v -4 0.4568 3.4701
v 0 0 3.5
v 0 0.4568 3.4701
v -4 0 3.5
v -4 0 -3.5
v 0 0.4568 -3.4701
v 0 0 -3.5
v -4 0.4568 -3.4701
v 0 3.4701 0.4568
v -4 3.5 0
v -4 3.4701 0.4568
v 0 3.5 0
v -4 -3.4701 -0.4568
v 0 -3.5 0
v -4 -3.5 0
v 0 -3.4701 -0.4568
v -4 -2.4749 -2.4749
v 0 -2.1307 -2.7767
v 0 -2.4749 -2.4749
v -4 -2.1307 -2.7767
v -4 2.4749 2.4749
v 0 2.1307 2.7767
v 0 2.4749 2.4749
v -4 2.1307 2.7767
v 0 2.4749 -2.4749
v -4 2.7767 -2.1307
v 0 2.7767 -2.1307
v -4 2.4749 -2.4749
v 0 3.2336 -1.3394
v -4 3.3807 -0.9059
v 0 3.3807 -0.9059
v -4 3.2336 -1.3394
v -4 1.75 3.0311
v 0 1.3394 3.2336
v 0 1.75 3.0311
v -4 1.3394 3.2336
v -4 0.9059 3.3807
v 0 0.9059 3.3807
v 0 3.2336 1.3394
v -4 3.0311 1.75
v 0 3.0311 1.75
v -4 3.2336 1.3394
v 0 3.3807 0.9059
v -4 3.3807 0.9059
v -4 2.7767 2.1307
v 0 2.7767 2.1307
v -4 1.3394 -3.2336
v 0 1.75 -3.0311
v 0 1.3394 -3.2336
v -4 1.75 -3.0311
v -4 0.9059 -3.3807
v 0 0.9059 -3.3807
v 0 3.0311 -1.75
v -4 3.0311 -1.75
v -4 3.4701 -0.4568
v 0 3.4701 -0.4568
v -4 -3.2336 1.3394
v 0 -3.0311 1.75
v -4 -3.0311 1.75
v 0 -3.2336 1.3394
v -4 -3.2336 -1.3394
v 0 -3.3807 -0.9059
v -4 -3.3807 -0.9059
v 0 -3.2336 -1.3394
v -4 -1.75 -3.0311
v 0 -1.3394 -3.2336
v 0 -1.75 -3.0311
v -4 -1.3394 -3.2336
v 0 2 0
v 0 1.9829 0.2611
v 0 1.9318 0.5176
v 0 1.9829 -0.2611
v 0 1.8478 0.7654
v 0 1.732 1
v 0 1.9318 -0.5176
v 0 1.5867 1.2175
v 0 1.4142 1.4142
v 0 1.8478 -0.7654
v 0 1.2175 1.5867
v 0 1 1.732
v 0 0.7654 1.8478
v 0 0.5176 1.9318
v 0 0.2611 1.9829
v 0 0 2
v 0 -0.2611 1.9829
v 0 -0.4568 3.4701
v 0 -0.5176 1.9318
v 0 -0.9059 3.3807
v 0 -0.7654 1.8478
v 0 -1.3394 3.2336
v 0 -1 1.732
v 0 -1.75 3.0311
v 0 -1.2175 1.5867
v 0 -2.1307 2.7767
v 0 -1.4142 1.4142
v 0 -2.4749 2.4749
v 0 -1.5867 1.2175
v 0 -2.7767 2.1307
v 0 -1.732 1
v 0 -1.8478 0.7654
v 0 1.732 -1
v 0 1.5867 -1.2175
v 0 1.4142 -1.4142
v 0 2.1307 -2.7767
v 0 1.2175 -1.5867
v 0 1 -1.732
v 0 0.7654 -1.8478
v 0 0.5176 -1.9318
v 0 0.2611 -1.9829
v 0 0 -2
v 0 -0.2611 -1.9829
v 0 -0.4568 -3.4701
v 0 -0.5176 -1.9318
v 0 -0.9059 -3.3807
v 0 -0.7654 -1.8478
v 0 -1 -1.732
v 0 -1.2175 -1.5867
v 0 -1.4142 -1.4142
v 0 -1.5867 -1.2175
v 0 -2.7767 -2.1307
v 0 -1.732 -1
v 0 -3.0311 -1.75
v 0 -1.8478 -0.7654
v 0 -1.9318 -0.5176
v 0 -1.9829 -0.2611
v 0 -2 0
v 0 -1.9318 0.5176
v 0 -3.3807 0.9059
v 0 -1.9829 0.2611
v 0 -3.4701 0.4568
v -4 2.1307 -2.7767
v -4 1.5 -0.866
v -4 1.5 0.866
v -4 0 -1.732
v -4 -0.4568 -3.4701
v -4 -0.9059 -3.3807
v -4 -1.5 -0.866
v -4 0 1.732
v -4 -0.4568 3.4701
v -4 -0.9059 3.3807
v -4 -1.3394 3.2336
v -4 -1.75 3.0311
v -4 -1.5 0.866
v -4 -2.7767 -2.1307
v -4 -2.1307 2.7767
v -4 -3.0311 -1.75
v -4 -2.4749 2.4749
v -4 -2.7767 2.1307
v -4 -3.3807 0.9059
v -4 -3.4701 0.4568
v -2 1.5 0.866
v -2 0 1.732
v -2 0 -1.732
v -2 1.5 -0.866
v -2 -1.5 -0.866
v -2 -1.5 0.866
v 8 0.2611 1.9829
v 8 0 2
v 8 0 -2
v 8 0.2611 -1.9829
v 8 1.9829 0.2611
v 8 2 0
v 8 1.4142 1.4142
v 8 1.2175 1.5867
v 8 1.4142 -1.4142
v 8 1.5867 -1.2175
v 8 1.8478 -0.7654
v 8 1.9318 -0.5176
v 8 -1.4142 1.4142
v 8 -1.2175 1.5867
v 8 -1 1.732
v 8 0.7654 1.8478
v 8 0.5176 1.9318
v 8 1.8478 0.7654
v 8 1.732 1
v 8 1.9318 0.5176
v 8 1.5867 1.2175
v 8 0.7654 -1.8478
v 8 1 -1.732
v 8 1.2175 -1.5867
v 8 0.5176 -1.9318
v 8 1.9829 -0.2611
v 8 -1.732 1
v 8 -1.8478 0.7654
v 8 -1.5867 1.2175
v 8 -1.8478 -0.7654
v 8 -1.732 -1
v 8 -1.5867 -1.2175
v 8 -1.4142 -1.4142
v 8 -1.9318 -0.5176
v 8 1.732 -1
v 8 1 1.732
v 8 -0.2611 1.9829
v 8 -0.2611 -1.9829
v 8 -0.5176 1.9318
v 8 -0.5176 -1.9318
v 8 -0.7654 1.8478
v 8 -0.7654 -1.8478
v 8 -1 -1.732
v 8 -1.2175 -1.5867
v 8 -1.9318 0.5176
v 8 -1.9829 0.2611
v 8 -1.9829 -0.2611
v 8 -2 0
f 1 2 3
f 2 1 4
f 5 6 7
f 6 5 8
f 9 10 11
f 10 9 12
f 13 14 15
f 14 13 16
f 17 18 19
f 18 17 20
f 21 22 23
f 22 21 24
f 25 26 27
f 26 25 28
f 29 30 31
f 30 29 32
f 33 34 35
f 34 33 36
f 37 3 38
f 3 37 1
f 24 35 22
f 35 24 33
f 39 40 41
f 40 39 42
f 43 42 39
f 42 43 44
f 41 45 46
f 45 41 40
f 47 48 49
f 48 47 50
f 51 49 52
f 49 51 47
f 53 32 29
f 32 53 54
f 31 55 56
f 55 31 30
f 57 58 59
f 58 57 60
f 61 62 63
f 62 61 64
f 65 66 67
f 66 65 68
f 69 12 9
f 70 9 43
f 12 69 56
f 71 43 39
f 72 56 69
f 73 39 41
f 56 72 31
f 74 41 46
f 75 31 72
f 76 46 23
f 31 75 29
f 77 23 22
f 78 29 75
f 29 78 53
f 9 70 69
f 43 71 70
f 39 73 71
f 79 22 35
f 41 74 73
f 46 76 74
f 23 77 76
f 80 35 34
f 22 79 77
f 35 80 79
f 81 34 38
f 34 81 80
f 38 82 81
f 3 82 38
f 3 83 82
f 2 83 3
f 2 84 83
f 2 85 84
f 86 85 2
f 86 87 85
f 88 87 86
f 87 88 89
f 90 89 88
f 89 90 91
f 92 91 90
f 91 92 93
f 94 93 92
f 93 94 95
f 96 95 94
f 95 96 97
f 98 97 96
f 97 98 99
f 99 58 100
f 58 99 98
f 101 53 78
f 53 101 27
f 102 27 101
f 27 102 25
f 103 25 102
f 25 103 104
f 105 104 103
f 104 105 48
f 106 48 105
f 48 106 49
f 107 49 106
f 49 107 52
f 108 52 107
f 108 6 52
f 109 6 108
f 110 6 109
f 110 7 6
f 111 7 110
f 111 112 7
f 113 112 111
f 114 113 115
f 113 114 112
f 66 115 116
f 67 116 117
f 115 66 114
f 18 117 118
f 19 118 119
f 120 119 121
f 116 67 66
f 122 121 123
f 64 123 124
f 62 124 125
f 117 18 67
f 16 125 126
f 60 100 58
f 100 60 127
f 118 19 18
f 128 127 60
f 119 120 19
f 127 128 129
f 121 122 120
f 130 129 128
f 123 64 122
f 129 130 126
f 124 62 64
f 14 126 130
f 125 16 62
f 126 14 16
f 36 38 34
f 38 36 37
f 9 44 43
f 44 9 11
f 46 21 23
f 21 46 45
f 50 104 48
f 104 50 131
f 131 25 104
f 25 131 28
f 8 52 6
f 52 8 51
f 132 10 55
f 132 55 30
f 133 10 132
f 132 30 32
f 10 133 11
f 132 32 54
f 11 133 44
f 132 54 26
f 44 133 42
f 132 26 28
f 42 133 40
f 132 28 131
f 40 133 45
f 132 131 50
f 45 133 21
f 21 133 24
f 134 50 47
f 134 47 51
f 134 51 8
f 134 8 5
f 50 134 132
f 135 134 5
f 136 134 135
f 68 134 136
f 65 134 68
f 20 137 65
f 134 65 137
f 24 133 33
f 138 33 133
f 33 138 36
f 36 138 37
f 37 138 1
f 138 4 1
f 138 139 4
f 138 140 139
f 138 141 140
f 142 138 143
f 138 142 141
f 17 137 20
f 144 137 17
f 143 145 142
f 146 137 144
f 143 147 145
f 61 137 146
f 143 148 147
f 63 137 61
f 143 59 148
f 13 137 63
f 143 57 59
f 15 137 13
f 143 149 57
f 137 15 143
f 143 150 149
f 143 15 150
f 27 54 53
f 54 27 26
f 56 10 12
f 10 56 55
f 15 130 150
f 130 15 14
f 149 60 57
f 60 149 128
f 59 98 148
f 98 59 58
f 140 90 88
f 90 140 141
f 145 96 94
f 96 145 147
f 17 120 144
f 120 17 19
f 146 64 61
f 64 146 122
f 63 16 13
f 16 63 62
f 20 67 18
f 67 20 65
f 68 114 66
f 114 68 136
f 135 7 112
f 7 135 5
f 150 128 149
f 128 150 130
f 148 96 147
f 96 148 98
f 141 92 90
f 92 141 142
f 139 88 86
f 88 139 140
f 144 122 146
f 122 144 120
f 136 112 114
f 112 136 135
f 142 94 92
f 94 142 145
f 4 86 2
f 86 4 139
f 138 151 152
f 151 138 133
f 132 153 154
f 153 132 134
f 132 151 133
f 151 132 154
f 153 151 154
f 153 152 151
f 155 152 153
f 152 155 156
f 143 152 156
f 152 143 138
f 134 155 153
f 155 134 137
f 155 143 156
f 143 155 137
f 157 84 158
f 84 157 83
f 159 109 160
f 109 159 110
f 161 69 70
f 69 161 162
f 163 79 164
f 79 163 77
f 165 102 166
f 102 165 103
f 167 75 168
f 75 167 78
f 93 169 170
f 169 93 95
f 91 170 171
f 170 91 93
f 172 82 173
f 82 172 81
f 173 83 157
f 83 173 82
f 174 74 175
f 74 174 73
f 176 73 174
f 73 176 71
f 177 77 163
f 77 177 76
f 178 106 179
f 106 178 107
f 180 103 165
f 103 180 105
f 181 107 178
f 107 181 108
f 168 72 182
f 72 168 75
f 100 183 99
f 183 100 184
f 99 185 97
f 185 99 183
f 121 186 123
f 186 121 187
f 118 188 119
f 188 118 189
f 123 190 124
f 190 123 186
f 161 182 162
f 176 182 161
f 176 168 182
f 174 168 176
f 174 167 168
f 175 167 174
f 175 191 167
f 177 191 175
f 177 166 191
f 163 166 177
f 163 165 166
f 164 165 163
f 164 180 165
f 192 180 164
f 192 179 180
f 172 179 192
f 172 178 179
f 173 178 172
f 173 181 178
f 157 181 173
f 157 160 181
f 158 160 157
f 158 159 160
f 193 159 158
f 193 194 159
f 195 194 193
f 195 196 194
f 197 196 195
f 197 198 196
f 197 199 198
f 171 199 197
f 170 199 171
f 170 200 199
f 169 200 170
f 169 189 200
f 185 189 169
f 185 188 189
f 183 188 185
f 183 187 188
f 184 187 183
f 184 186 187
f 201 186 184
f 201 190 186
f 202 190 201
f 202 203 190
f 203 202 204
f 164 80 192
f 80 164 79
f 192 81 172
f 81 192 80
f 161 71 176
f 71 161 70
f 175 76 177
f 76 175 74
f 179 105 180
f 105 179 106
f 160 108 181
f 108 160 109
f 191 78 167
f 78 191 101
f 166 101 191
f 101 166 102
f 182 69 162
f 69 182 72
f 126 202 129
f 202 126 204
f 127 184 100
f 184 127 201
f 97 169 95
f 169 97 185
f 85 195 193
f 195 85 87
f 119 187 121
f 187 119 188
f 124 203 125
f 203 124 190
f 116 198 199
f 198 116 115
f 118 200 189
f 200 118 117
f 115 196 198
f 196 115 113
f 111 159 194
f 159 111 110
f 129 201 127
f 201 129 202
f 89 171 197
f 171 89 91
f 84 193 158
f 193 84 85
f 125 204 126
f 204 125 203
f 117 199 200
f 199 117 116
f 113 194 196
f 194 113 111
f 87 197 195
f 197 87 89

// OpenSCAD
// file: ../../lib/nutsnbolts/data-access.scad
// Norm Nuts and Bolts - a OpenSCAD library
// Copyright (C) 2012  Johannes Kneer

// This program is free software: you can redistribute it and/or modify
// it under the terms of the GNU General Public License as published by
// the Free Software Foundation, either version 3 of the License, or
// (at your option) any later version.

// This program is distributed in the hope that it will be useful,
// but WITHOUT ANY WARRANTY; without even the implied warranty of
// MERCHANTABILITY or FITNESS FOR A PARTICULAR PURPOSE.  See the
// GNU General Public License for more details.

// You should have received a copy of the GNU General Public License
// along with this program.  If not, see <http://www.gnu.org/licenses/>.


// DATABASE ACCESS FUNCTIONS AND CONSTANTS



// == CONSTANTS ==

// screw table access keys
_NB_S_DESC            = 0;
_NB_S_FAMKEY			    = 1;
_NB_S_LENGTH          = 2;
_NB_S_NOTHREAD_LENGTH = 3;

_NB_F_DESC			      = 0;
_NB_F_OUTER_DIA       = 1;
_NB_F_INNER_DIA       = 2;
_NB_F_LEAD            = 3;
_NB_F_KEY             = 4;
_NB_F_KEY_DEPTH       = 5;
_NB_F_HEAD_HEIGHT     = 6;
_NB_F_HEAD_DIA        = 7;
_NB_F_NUT_KEY         = 8;
_NB_F_NUT_HEIGHT      = 9;
_NB_F_PITCH_FINE      = 10;
_NB_F_PITCH_MEDIUM    = 11;
_NB_F_PITCH_COARSE    = 12;


// == FUNCTIONS ==

// _get_screw("descriptor")   with descriptor = M8x25
//   find the line for a general object in the data matrix

function _get_screw(n) = data_screw[search([n], data_screw)[0]];
function _get_screw_fam(n) = data_screw_fam[search([_get_screw(n)[_NB_S_FAMKEY]], data_screw_fam)[0]];

function _get_fam(n) = data_screw_fam[search([n], data_screw_fam)[0]];


// _get_XXXXX("descriptor") functions
// find a single property in the database

function _get_desc(n)        = _get_screw(n)[_NB_S_DESC];
function _get_famkey(n)         = _get_screw(n)[_NB_S_FAMKEY];
function _get_length(n)      = _get_screw(n)[_NB_S_LENGTH];
function _get_nt_length(n)   = _get_screw(n)[_NB_S_NOTHREAD_LENGTH];

function _get_outer_dia(n)   = _get_screw_fam(n)[_NB_F_OUTER_DIA];
function _get_inner_dia(n)   = _get_screw_fam(n)[_NB_F_INNER_DIA];
function _get_lead(n)        = _get_screw_fam(n)[_NB_F_LEAD];
function _get_head_height(n) = _get_screw_fam(n)[_NB_F_HEAD_HEIGHT];
function _get_head_dia(n)    = _get_screw_fam(n)[_NB_F_HEAD_DIA];
function _get_nut_key(n)     = _get_screw_fam(n)[_NB_F_NUT_KEY];
function _get_nut_height(n)  = _get_screw_fam(n)[_NB_F_NUT_HEIGHT];
function _get_fine_pitch(n)  = _get_screw_fam(n)[_NB_F_PITCH_FINE];
function _get_medium_pitch(n)  = _get_screw_fam(n)[_NB_F_PITCH_MEDIUM];
function _get_coarse_pitch(n)  = _get_screw_fam(n)[_NB_F_PITCH_COARSE];
// main file
/**********************************************************************************************************************
 **
 ** parts/vitamins/screw_M4x8.scad
 **
 ** This file renders a screw of the dimensions specified by the file name.
 **
 **********************************************************************************************************************/

include <../../lib/nutsnbolts/cyl_head_bolt.scad>;

$fn = 48;
rotate([0, -90, 0])
	screw("M4x8"); 
